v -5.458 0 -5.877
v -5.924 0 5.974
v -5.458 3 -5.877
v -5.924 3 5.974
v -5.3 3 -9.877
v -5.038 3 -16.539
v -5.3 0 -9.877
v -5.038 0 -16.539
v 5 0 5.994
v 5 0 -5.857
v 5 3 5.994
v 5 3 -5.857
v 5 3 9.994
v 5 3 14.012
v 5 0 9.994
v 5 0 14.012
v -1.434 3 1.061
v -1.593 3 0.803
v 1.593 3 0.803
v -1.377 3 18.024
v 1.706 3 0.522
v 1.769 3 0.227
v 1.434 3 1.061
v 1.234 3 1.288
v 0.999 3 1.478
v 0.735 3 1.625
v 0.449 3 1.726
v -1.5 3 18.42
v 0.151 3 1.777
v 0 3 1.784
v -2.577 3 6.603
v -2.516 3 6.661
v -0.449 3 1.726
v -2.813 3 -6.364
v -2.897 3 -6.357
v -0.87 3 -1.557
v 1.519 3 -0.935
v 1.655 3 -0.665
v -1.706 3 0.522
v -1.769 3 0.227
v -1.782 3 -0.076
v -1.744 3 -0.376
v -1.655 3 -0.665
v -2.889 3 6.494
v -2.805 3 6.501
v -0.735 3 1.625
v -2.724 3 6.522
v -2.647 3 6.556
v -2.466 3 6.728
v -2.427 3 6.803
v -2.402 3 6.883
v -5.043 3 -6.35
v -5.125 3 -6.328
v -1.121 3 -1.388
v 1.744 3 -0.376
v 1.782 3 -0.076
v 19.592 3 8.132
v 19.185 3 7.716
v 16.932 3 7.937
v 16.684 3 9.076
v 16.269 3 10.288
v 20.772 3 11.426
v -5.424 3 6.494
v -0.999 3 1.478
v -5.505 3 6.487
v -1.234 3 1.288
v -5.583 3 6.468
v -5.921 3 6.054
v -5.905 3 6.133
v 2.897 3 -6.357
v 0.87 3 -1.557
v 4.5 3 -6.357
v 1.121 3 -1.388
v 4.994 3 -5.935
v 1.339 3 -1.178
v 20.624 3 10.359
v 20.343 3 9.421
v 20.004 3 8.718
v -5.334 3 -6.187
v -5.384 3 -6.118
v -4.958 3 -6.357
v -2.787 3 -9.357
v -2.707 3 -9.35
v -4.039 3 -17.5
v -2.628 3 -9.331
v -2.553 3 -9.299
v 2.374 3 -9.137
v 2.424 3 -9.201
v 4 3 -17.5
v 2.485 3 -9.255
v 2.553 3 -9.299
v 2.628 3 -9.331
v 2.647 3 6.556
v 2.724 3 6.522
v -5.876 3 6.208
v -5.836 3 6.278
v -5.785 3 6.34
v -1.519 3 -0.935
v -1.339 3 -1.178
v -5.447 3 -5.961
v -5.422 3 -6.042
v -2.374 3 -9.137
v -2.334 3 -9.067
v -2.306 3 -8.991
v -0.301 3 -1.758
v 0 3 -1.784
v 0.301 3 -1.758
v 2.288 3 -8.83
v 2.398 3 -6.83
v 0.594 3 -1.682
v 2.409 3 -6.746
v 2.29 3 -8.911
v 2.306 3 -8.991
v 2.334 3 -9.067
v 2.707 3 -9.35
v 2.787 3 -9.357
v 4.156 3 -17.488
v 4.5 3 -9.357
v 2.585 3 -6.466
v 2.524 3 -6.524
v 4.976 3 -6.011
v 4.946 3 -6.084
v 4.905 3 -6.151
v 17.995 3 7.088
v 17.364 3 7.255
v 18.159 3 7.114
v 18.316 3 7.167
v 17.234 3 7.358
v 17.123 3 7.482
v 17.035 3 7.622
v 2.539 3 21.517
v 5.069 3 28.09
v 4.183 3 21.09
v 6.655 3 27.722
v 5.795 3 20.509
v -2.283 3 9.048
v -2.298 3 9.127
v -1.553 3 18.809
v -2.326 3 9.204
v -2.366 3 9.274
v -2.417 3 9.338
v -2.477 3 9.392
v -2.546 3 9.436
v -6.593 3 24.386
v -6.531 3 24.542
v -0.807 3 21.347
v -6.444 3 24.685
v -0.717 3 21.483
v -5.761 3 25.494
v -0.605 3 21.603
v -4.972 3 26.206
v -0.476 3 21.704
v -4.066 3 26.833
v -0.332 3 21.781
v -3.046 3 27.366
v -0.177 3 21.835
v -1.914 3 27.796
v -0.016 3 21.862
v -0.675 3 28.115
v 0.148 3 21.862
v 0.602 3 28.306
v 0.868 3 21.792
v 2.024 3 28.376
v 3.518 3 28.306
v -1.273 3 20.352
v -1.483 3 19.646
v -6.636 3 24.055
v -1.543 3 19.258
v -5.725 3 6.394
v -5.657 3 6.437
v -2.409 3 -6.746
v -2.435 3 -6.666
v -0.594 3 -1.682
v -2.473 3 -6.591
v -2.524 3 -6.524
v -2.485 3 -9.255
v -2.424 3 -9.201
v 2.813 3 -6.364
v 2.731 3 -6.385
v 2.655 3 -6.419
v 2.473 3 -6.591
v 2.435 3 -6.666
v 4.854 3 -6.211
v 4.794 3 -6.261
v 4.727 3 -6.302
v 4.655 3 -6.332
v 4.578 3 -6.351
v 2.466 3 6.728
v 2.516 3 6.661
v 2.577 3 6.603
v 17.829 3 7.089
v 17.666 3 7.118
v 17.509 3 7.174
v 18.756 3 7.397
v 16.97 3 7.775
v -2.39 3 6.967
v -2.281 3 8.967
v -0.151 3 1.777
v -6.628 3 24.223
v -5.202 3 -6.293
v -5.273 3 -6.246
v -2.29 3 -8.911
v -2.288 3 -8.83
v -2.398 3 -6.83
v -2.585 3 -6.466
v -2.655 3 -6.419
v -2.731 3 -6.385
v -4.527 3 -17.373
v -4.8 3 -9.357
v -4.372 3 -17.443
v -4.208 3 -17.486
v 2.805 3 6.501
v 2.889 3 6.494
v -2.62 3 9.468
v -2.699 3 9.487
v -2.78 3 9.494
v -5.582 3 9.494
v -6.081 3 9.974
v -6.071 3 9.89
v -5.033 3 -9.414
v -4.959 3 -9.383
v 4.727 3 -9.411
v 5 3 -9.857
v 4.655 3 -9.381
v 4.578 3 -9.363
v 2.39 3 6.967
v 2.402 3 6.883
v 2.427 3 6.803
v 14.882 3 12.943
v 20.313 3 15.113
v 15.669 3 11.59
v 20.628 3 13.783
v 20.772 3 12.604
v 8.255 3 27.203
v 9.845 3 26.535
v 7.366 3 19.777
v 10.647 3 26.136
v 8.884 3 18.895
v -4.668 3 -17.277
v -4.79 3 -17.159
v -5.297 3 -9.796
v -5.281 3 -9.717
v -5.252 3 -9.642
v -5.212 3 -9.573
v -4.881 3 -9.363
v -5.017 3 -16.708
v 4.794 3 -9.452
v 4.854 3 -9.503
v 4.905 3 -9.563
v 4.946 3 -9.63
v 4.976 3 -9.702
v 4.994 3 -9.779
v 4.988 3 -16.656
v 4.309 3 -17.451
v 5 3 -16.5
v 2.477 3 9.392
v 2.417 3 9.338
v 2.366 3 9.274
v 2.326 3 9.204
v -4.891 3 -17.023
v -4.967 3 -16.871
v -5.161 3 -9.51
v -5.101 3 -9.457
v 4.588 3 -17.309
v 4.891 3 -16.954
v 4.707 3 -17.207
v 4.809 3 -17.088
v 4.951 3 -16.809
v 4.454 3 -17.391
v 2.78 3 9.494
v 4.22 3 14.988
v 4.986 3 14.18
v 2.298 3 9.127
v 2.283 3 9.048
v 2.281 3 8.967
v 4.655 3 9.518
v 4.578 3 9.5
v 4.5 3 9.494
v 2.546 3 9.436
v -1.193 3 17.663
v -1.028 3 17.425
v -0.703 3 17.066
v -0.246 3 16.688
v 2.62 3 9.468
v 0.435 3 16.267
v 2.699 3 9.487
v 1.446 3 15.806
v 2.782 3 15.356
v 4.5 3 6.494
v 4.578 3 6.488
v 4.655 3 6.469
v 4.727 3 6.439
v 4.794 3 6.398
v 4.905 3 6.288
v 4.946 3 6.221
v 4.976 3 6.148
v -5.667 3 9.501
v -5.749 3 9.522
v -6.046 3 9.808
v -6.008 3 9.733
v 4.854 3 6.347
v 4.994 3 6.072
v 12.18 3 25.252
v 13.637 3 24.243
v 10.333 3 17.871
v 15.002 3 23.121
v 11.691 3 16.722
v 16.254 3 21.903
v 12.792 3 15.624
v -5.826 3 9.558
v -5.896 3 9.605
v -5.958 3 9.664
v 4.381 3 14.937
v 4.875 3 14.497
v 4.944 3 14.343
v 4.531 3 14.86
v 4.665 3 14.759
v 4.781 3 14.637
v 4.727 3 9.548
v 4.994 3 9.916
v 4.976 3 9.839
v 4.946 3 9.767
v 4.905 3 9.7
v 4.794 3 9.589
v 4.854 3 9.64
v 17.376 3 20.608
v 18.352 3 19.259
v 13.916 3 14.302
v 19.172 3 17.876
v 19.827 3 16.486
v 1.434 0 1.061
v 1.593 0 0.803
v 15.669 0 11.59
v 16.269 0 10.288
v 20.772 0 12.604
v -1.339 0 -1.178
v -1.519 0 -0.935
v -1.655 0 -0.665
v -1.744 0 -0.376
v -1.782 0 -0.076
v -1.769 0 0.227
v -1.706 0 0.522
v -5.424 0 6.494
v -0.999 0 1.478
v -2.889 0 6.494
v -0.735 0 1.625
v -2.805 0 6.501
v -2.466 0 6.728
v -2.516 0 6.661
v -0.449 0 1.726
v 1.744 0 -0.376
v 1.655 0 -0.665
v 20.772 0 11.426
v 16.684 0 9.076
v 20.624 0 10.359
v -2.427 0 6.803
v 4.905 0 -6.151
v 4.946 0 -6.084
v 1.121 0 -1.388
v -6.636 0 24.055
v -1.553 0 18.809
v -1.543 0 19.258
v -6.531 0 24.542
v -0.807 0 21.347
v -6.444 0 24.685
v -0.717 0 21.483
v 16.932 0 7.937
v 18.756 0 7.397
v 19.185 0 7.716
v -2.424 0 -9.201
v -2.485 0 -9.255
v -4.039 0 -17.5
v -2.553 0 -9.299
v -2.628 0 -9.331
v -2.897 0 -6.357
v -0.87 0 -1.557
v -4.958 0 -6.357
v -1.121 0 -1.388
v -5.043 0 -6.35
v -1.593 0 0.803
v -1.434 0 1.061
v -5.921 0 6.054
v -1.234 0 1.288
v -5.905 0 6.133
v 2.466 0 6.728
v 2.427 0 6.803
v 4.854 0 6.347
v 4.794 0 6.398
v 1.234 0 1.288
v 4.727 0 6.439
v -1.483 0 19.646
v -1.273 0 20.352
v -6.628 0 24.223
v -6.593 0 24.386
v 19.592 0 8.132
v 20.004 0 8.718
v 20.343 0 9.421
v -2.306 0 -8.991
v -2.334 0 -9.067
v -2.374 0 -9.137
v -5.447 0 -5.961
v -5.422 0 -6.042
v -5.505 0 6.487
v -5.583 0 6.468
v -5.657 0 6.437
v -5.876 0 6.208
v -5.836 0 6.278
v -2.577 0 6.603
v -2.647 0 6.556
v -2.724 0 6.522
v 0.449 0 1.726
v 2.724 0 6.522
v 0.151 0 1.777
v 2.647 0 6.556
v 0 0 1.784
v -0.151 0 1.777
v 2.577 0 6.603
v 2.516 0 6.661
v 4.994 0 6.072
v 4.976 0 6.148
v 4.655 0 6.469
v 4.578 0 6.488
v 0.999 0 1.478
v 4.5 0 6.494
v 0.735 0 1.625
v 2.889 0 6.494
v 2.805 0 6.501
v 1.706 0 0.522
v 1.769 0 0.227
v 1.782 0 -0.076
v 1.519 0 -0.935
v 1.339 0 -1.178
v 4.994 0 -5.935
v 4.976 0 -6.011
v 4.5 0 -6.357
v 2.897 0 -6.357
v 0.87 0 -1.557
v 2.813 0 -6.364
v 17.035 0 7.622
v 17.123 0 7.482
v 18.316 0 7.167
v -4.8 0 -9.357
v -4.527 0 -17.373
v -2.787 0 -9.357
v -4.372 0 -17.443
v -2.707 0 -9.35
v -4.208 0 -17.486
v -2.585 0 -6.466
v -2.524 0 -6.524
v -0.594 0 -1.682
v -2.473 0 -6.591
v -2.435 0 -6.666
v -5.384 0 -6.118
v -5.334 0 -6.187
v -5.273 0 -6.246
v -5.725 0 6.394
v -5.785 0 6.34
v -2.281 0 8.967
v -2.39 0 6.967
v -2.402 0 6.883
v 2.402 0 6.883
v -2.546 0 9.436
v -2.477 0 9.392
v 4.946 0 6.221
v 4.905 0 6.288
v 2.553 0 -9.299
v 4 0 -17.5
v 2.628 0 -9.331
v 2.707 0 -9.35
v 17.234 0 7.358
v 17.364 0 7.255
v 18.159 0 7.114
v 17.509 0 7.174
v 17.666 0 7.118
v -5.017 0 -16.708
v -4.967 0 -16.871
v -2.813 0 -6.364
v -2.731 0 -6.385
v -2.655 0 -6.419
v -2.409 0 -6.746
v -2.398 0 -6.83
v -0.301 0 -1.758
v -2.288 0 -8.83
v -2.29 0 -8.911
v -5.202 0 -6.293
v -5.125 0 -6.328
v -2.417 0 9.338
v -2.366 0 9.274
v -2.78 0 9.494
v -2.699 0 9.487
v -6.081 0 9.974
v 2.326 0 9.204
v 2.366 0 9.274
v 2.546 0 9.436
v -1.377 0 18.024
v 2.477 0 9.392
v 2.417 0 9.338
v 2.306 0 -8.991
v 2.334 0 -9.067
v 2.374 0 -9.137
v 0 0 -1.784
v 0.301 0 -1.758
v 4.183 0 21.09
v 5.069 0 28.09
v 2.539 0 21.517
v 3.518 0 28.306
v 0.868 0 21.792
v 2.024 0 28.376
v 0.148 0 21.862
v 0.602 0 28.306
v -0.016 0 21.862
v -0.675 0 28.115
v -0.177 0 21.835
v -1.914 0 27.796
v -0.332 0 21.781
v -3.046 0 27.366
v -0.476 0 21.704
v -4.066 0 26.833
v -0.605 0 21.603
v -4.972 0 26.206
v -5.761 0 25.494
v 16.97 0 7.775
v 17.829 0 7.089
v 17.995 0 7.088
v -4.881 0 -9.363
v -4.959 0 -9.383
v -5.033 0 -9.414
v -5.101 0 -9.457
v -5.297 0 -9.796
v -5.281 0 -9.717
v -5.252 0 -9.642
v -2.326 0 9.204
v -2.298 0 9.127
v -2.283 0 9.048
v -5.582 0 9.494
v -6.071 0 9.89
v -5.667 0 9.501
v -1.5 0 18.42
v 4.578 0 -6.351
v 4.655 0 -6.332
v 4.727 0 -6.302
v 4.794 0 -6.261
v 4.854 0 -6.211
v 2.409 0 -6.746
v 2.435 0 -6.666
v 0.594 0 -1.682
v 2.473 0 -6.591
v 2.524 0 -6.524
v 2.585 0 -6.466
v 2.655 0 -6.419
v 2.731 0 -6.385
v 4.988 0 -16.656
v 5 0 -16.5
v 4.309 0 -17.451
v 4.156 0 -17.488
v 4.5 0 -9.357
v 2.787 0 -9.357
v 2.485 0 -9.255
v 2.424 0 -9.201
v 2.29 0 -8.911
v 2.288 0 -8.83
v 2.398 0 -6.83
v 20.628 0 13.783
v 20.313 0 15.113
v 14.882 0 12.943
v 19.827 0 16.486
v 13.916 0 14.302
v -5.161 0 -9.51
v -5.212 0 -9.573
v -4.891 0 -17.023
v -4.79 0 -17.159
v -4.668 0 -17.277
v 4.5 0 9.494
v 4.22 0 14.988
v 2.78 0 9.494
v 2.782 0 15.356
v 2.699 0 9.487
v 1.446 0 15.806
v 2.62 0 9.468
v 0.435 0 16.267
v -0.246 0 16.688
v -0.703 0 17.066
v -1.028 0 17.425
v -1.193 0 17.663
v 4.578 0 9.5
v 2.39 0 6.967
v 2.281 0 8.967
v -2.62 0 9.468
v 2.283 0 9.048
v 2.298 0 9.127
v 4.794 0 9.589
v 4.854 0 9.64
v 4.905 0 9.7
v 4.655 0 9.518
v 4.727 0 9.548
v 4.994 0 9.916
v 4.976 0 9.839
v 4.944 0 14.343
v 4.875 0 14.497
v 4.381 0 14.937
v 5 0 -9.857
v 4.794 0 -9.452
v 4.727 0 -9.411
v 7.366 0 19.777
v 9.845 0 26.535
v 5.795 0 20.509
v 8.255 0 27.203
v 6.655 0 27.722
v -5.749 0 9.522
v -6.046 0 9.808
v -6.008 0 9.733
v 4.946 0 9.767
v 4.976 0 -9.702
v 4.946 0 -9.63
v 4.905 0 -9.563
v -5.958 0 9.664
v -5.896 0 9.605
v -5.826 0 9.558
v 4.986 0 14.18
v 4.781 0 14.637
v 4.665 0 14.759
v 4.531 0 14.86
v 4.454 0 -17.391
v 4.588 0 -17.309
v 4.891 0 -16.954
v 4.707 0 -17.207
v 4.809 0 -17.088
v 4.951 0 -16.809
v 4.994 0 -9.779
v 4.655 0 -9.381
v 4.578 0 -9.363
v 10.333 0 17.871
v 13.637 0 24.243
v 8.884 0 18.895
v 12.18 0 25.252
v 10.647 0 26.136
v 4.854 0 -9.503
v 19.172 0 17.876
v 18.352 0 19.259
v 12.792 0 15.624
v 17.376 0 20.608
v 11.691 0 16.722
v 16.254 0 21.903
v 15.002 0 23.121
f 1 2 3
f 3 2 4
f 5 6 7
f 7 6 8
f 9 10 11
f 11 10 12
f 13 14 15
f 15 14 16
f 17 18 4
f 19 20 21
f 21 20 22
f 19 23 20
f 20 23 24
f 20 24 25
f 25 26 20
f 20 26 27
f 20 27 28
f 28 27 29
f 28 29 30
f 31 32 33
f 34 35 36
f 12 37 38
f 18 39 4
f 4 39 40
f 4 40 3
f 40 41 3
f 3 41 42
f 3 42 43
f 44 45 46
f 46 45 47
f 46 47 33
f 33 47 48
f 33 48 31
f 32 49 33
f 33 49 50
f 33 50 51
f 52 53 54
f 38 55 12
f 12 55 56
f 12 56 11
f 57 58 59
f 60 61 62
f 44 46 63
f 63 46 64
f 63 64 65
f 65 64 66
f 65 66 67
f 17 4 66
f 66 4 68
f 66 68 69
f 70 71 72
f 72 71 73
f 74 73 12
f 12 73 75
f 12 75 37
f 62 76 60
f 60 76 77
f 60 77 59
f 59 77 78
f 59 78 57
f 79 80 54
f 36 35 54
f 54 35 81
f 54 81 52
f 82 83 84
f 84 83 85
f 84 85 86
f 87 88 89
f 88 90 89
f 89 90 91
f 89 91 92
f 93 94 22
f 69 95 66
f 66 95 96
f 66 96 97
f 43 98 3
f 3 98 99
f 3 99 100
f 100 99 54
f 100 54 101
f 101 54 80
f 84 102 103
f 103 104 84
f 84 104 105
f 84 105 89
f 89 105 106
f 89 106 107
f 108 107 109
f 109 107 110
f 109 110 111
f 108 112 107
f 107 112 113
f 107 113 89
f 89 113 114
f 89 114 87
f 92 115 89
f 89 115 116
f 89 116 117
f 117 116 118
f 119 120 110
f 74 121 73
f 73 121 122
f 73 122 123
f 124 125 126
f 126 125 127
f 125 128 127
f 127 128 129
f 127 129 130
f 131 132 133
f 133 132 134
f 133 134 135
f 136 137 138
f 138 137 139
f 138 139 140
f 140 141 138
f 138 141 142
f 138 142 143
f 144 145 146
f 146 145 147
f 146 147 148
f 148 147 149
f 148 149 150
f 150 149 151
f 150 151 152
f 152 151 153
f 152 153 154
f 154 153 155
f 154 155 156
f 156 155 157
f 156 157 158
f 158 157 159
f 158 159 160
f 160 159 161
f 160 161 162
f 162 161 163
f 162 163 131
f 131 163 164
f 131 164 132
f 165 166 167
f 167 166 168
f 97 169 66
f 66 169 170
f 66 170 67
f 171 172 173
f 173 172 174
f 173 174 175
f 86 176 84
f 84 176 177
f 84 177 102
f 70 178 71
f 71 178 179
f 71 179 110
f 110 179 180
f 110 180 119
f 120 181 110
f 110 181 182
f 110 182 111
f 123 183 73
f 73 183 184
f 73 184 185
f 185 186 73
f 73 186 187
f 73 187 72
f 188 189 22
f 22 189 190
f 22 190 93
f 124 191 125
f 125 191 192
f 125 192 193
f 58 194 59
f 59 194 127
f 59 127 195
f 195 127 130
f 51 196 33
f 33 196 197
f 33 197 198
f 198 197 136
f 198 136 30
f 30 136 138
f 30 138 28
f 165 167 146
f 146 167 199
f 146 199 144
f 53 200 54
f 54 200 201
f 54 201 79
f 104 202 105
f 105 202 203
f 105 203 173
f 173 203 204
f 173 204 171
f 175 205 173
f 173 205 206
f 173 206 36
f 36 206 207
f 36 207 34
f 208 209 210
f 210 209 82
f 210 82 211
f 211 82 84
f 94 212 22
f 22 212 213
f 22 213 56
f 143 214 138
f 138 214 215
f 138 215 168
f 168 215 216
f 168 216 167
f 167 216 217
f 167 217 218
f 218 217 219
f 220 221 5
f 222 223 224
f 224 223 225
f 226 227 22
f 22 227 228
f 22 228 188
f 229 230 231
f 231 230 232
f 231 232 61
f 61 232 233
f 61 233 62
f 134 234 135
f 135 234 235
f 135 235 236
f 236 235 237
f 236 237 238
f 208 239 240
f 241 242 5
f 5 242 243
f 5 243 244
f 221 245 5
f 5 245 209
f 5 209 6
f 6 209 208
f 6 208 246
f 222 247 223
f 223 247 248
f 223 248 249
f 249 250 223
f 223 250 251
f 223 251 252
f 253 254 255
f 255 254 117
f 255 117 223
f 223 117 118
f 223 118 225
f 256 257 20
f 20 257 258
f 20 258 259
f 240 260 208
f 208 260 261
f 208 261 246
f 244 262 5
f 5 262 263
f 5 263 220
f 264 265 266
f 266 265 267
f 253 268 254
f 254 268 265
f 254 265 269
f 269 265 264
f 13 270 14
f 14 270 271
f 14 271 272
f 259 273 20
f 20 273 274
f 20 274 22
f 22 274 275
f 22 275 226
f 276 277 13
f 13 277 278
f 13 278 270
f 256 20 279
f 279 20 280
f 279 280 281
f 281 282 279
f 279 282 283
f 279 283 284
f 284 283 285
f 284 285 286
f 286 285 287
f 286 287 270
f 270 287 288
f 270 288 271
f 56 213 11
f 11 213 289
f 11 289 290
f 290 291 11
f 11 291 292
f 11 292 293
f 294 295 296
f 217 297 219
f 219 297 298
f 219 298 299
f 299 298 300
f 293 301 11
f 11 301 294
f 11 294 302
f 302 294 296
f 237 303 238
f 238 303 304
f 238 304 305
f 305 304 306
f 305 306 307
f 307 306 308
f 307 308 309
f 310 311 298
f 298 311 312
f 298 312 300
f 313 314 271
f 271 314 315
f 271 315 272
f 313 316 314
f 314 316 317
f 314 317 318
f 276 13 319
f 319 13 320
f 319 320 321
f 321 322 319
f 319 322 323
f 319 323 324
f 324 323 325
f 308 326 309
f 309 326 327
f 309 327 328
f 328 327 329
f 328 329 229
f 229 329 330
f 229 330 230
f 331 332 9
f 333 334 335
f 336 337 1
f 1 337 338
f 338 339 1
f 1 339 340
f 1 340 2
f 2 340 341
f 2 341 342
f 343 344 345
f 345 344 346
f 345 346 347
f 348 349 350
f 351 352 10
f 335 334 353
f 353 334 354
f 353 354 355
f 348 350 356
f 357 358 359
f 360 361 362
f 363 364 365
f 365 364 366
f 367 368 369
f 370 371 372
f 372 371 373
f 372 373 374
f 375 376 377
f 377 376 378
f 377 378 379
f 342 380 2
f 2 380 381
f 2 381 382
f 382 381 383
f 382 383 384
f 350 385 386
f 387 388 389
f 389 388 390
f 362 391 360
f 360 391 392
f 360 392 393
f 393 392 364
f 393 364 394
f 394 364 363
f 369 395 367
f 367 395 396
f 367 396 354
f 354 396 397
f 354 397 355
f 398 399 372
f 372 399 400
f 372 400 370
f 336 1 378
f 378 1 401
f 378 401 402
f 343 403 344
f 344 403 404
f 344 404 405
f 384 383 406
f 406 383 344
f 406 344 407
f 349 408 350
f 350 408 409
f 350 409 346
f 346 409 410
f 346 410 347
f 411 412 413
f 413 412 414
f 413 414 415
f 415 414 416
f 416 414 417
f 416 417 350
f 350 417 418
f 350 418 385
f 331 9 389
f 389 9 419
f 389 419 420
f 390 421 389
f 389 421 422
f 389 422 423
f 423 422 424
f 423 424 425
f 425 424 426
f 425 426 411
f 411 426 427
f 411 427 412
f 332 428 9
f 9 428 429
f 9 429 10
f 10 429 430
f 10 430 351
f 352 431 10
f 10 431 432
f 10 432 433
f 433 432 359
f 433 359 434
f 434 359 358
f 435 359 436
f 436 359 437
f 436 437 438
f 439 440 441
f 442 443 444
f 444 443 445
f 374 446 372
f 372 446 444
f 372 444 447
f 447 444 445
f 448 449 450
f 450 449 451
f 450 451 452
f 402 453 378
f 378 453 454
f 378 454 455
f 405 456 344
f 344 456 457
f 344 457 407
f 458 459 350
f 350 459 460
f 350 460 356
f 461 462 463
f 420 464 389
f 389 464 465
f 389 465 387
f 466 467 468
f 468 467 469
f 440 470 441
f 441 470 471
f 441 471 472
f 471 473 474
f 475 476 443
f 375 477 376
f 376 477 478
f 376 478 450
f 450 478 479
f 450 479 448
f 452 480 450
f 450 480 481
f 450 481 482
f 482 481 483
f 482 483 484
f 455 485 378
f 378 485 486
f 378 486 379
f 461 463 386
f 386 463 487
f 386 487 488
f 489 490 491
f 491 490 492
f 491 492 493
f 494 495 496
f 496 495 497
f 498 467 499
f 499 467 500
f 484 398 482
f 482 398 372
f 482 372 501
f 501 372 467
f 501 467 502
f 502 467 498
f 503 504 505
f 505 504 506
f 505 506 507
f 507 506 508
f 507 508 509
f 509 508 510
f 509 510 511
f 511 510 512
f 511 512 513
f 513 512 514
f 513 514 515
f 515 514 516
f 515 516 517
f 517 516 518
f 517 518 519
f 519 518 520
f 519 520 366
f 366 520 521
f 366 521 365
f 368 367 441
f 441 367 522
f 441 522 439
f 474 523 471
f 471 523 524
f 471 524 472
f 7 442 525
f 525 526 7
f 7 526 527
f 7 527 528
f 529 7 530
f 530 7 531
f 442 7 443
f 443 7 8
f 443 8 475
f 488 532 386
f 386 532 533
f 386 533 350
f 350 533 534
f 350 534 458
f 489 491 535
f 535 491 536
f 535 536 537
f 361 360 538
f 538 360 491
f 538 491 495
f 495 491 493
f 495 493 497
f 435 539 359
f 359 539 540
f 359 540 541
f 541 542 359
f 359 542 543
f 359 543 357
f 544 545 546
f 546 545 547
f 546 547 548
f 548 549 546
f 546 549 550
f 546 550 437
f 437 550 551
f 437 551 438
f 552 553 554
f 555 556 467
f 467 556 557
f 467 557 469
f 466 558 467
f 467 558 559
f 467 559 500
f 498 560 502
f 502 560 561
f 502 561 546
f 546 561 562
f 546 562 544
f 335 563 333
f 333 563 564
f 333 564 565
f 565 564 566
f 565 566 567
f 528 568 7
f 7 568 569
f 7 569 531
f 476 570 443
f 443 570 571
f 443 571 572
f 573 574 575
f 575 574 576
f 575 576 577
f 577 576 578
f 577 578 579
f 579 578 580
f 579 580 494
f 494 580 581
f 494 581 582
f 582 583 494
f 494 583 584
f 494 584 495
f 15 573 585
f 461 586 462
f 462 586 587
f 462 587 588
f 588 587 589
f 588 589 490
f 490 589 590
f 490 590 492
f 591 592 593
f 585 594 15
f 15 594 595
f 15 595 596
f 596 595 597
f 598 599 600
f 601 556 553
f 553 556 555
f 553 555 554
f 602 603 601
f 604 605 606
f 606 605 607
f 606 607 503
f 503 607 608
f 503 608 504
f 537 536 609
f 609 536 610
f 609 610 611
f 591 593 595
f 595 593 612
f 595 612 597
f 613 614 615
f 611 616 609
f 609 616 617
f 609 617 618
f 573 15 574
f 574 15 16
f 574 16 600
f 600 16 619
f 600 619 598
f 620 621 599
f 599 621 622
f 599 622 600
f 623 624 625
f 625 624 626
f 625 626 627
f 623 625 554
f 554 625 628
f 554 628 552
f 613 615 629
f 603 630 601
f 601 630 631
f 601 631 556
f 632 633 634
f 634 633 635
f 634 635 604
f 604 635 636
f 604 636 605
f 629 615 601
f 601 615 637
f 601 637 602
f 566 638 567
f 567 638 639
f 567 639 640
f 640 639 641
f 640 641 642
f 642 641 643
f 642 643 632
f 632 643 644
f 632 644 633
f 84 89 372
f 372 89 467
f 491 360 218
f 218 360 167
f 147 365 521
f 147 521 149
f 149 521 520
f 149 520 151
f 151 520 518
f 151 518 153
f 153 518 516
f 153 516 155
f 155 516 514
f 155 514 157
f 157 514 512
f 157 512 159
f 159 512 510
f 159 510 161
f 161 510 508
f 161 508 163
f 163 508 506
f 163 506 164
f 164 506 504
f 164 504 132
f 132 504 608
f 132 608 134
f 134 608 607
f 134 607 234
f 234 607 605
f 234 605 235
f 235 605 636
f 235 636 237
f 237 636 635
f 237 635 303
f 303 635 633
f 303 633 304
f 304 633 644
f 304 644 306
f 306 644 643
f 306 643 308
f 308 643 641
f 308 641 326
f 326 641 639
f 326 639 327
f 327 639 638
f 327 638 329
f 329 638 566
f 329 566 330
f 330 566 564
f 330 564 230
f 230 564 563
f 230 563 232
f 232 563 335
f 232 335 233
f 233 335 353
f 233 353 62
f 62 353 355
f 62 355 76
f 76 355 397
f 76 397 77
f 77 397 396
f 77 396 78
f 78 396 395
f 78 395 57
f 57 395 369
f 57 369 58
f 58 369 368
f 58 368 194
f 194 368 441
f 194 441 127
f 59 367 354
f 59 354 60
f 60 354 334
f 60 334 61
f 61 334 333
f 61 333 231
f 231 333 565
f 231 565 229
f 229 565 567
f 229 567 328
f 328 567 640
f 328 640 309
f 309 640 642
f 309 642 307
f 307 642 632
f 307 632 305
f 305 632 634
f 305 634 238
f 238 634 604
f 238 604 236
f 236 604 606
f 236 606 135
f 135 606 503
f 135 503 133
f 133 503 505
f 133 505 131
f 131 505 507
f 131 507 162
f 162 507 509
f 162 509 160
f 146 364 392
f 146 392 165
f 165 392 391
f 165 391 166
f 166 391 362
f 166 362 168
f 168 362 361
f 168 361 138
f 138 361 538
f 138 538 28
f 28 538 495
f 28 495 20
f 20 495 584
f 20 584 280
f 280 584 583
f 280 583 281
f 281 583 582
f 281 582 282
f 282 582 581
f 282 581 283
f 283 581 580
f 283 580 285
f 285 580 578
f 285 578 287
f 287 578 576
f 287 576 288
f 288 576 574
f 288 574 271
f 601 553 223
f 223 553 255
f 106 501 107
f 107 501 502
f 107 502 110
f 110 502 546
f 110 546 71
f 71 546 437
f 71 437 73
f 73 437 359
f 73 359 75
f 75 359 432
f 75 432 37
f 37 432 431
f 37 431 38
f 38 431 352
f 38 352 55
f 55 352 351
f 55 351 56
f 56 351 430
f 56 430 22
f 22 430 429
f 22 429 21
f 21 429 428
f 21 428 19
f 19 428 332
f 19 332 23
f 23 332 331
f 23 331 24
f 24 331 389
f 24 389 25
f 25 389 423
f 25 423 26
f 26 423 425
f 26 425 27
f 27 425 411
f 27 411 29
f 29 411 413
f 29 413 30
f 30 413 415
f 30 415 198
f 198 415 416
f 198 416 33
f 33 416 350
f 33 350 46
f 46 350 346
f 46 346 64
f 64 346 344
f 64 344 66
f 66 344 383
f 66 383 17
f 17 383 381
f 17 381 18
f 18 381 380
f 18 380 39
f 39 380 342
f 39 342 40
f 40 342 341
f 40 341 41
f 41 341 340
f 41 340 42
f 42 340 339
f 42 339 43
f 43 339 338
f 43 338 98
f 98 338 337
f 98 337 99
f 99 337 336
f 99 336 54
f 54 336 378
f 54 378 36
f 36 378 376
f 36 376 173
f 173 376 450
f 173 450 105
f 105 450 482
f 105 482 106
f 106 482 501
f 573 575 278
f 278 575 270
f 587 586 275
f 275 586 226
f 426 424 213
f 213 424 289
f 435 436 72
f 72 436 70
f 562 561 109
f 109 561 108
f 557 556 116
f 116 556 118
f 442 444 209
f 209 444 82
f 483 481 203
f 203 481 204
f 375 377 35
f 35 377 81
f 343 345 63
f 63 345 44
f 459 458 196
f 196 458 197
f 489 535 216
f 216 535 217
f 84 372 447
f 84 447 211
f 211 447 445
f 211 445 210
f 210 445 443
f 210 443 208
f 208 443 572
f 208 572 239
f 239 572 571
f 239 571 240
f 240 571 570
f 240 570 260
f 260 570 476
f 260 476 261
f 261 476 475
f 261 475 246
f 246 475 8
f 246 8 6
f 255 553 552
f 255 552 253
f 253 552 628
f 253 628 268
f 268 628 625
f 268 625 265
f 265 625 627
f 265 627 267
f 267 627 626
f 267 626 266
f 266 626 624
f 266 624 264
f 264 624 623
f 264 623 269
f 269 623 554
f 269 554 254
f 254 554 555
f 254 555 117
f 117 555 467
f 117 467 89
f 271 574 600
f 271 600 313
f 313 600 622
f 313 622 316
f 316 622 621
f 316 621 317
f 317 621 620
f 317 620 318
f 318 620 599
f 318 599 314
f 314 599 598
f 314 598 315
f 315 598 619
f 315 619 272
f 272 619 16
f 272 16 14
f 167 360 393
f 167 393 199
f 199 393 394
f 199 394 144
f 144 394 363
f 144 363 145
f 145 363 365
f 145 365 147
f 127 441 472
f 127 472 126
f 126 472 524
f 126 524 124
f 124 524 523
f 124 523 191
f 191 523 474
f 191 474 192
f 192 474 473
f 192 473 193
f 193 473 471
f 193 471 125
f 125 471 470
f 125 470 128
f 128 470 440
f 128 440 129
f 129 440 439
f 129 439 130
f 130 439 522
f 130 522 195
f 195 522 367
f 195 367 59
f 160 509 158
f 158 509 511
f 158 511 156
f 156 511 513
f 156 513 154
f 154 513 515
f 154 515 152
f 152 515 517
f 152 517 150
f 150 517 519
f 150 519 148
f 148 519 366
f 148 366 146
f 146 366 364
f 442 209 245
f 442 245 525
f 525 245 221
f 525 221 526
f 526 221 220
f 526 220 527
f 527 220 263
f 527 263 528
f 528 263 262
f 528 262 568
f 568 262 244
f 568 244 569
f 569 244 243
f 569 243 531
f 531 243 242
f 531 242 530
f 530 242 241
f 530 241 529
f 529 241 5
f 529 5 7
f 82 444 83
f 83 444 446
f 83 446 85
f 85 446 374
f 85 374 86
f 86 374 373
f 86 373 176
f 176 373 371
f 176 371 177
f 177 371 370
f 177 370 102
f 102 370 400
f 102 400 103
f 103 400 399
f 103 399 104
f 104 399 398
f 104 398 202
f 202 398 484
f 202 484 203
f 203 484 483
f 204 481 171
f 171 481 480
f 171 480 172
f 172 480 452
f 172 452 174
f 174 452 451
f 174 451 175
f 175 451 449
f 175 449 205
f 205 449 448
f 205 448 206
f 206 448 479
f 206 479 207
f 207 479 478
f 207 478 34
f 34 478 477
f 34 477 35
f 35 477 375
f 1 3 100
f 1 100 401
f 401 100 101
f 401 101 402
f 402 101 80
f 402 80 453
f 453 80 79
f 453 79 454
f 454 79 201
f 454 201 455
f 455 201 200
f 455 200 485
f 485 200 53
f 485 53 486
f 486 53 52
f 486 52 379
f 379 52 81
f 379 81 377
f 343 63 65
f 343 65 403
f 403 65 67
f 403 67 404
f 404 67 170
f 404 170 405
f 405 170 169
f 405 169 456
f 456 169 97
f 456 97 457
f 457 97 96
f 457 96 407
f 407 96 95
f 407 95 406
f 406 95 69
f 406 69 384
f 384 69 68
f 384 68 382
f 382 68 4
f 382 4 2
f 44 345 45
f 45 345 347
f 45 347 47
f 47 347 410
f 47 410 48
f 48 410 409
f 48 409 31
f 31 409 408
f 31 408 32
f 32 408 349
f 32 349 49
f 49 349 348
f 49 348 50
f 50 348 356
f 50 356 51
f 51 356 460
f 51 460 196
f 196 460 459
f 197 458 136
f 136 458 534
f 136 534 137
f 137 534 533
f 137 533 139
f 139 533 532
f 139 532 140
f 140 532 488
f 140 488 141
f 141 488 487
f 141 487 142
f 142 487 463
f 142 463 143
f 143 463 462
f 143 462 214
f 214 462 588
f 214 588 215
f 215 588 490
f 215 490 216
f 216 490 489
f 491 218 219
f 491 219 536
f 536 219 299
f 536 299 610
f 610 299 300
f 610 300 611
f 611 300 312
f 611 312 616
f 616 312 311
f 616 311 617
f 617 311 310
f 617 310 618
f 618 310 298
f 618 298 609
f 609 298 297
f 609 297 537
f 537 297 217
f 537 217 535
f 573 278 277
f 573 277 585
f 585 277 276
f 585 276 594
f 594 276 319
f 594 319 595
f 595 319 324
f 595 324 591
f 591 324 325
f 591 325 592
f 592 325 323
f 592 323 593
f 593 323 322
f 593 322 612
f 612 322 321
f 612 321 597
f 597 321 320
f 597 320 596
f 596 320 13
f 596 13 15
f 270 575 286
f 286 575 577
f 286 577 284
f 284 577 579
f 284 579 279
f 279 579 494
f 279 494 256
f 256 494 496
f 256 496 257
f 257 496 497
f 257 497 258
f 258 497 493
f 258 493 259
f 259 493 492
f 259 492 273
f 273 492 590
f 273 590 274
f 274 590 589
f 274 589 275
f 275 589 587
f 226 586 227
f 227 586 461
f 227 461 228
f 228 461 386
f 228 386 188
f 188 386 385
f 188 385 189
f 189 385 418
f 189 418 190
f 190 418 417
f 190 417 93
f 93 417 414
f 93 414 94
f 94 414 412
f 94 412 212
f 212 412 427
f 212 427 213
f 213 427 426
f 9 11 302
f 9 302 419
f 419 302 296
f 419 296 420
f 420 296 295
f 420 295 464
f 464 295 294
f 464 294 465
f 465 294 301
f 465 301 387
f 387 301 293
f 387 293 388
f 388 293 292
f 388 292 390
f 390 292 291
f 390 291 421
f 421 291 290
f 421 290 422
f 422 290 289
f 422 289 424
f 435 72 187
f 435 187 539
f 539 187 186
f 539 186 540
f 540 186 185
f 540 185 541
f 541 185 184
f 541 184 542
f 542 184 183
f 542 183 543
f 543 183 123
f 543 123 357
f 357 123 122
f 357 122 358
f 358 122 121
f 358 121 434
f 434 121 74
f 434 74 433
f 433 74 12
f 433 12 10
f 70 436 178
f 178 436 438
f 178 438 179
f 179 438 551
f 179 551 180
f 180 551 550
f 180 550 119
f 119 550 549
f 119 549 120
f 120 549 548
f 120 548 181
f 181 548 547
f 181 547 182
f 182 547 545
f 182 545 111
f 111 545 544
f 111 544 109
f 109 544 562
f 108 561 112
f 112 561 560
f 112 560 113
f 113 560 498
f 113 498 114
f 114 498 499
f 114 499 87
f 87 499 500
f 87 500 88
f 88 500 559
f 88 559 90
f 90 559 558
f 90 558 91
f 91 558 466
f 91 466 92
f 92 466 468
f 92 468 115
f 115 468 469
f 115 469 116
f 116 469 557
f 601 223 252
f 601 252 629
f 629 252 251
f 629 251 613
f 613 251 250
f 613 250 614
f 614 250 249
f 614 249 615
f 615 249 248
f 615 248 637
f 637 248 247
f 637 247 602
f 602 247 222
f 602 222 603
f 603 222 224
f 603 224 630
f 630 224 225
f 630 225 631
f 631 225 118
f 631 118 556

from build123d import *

# Parameters (mm, degrees)
BOSS_EXTRUDE1_OUTLINE_R = 1.783761197
BOSS_EXTRUDE1_DEPTH     = 3
CUT_EXTRUDE1_REACH      = 37.306
FILLET1_R               = 1
FILLET2_R               = 0.5


# Read off the part's stored shape, not the designer's step: Boss-Extrude1
with BuildPart() as part:
    # Boss-Extrude1 outline → Boss-Extrude1 (new body)
    with BuildSketch(Plane(origin=(0, 0, 0), x_dir=(1, 0, 0), z_dir=(0, 1, 0))):
        with BuildLine():
            Line((5, 17.5), (-5, 17.5))
            Line((-5, 17.5), (-6.648887471, -24.389894135))
            add(Edge.make_bspline(
                [(-6.648887471, -24.389894135), (-1.79761276, -31.734966706), (13.203728073, -30.957119403), (24.864765464, -19.062433132), (22.884297555, -6.902852925), (17.013261533, -6.902852925)],
                knots=[0, 0, 0, 0, 0, 0, 1, 1, 1, 1, 1, 1], degree=5))
            add(Edge.make_bspline(
                [(17.013261533, -6.902852925), (17.013261533, -12.122390468), (10.158000359, -21.42084271), (-0.482101901, -21.901454261)],
                knots=[0, 0, 0, 0, 1, 1, 1, 1], degree=3))
            add(Edge.make_bspline(
                [(-0.482101901, -21.901454261), (-2.603887856, -18.477971621), (-1.981580223, -16.222106451), (5, -14.821914277)],
                knots=[0, 0, 0, 0, 1, 1, 1, 1], degree=3))
            Line((5, -14.821914277), (5, 17.5))
        make_face()
        Circle(BOSS_EXTRUDE1_OUTLINE_R, mode=Mode.SUBTRACT)
    extrude(amount=BOSS_EXTRUDE1_DEPTH)

    # Sketch2 → Cut-Extrude1 (cut, up to next)
    with BuildSketch(Plane(origin=(0, 3, 0), x_dir=(1, 0, 0), z_dir=(0, 1, 0)), mode=Mode.PRIVATE) as cut_extrude1_sk1:
        Polygon((-5.438617253, 6.356953165), (-2.423349926, 6.356953165), (-2.259422797, 9.356953165), (-5.320530003, 9.356953165), align=None)
    cut_extrude1_tool1 = extrude(cut_extrude1_sk1.sketch, amount=-CUT_EXTRUDE1_REACH, mode=Mode.PRIVATE) & part.part
    # Sketch2 → Cut-Extrude1 (cut, up to next)
    with BuildSketch(Plane(origin=(0, 3, 0), x_dir=(1, 0, 0), z_dir=(0, 1, 0)), mode=Mode.PRIVATE) as cut_extrude1_sk2:
        Polygon((5, 6.356953165), (2.423349926, 6.356953165), (2.259422797, 9.356953165), (5, 9.356953165), align=None)
    cut_extrude1_tool2 = extrude(cut_extrude1_sk2.sketch, amount=-CUT_EXTRUDE1_REACH, mode=Mode.PRIVATE) & part.part
    # Sketch2 → Cut-Extrude1 (cut, up to next)
    with BuildSketch(Plane(origin=(0, 3, 0), x_dir=(1, 0, 0), z_dir=(0, 1, 0)), mode=Mode.PRIVATE) as cut_extrude1_sk3:
        Polygon((-5.944453926, -6.493799271), (-2.41587233, -6.493799271), (-2.2519452, -9.493799271), (-6.062541177, -9.493799271), align=None)
    cut_extrude1_tool3 = extrude(cut_extrude1_sk3.sketch, amount=-CUT_EXTRUDE1_REACH, mode=Mode.PRIVATE) & part.part
    # Sketch2 → Cut-Extrude1 (cut, up to next)
    with BuildSketch(Plane(origin=(0, 3, 0), x_dir=(1, 0, 0), z_dir=(0, 1, 0)), mode=Mode.PRIVATE) as cut_extrude1_sk4:
        Polygon((5, -6.493799271), (2.41587233, -6.493799271), (2.2519452, -9.493799271), (5, -9.493799271), align=None)
    cut_extrude1_tool4 = extrude(cut_extrude1_sk4.sketch, amount=-CUT_EXTRUDE1_REACH, mode=Mode.PRIVATE) & part.part
    add(cut_extrude1_tool1.solids().sort_by_distance((-3.860303, 3, -7.860725))[0], mode=Mode.SUBTRACT)
    add(cut_extrude1_tool2.solids().sort_by_distance((3.670272, 3, -7.872368))[0], mode=Mode.SUBTRACT)
    add(cut_extrude1_tool3.solids().sort_by_distance((-4.168556, 3, 8.013012))[0], mode=Mode.SUBTRACT)
    add(cut_extrude1_tool4.solids().sort_by_distance((3.666534, 3, 8.009171))[0], mode=Mode.SUBTRACT)

    # Fillet1
    fillet1_edges = [part.edges().sort_by_distance(p)[0] for p in [
        (-5, 1.5, -17.5),
        (5, 1.5, -17.5),
        (5, 1.5, 14.821914277),
        (-6.648887471, 1.5, 24.389894135),
        (17.013261533, 1.5, 6.902852925),
        (-0.482101901, 1.5, 21.901454261),
    ]]
    fillet(fillet1_edges, radius=FILLET1_R)

    # Fillet2
    fillet2_edges = [part.edges().sort_by_distance(p)[0] for p in [
        (5, 1.5, -9.356953165),
        (5, 1.5, -6.356953165),
        (2.423349926, 1.5, -6.356953165),
        (2.259422797, 1.5, -9.356953165),
        (-6.062541177, 1.5, 9.493799271),
        (-5.944453926, 1.5, 6.493799271),
        (-2.41587233, 1.5, 6.493799271),
        (-2.2519452, 1.5, 9.493799271),
        (5, 1.5, 6.493799271),
        (5, 1.5, 9.493799271),
        (2.2519452, 1.5, 9.493799271),
        (2.41587233, 1.5, 6.493799271),
        (-5.438617253, 1.5, -6.356953165),
        (-5.320530003, 1.5, -9.356953165),
        (-2.259422797, 1.5, -9.356953165),
        (-2.423349926, 1.5, -6.356953165),
    ]]
    fillet(fillet2_edges, radius=FILLET2_R)


solid = part.part
